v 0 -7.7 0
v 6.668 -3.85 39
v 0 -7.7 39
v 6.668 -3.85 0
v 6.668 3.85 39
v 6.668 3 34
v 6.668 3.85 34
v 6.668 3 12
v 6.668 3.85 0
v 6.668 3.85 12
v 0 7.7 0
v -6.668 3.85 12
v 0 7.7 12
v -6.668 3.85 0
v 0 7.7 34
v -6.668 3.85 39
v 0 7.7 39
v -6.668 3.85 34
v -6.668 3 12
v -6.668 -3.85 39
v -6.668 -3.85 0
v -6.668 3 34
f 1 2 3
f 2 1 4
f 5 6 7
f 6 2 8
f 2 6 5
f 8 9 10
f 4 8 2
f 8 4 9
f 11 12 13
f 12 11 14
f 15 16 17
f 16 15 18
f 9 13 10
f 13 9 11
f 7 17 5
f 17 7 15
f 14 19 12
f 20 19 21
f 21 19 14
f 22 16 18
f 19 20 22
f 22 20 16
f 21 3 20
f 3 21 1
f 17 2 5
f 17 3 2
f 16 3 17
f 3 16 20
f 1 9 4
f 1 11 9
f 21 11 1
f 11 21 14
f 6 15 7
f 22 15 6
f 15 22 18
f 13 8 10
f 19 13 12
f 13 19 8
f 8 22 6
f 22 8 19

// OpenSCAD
length_inner = 12;
length_outer = 5;
length_center = 22;
length_total = length_center+length_outer+length_inner;
inner_diametr = 15.4;

deep_offset = -3;

difference() {
translate([0,0,length_total/2]) {
    rotate([0,0,30]) {
  cylinder(r=inner_diametr/2, h=length_total, center=true, $fn=6);
    }
}


translate([0,40/2-deep_offset,length_center/2+length_inner]) {
  cube([40, 40, length_center], center=true);
}


}
